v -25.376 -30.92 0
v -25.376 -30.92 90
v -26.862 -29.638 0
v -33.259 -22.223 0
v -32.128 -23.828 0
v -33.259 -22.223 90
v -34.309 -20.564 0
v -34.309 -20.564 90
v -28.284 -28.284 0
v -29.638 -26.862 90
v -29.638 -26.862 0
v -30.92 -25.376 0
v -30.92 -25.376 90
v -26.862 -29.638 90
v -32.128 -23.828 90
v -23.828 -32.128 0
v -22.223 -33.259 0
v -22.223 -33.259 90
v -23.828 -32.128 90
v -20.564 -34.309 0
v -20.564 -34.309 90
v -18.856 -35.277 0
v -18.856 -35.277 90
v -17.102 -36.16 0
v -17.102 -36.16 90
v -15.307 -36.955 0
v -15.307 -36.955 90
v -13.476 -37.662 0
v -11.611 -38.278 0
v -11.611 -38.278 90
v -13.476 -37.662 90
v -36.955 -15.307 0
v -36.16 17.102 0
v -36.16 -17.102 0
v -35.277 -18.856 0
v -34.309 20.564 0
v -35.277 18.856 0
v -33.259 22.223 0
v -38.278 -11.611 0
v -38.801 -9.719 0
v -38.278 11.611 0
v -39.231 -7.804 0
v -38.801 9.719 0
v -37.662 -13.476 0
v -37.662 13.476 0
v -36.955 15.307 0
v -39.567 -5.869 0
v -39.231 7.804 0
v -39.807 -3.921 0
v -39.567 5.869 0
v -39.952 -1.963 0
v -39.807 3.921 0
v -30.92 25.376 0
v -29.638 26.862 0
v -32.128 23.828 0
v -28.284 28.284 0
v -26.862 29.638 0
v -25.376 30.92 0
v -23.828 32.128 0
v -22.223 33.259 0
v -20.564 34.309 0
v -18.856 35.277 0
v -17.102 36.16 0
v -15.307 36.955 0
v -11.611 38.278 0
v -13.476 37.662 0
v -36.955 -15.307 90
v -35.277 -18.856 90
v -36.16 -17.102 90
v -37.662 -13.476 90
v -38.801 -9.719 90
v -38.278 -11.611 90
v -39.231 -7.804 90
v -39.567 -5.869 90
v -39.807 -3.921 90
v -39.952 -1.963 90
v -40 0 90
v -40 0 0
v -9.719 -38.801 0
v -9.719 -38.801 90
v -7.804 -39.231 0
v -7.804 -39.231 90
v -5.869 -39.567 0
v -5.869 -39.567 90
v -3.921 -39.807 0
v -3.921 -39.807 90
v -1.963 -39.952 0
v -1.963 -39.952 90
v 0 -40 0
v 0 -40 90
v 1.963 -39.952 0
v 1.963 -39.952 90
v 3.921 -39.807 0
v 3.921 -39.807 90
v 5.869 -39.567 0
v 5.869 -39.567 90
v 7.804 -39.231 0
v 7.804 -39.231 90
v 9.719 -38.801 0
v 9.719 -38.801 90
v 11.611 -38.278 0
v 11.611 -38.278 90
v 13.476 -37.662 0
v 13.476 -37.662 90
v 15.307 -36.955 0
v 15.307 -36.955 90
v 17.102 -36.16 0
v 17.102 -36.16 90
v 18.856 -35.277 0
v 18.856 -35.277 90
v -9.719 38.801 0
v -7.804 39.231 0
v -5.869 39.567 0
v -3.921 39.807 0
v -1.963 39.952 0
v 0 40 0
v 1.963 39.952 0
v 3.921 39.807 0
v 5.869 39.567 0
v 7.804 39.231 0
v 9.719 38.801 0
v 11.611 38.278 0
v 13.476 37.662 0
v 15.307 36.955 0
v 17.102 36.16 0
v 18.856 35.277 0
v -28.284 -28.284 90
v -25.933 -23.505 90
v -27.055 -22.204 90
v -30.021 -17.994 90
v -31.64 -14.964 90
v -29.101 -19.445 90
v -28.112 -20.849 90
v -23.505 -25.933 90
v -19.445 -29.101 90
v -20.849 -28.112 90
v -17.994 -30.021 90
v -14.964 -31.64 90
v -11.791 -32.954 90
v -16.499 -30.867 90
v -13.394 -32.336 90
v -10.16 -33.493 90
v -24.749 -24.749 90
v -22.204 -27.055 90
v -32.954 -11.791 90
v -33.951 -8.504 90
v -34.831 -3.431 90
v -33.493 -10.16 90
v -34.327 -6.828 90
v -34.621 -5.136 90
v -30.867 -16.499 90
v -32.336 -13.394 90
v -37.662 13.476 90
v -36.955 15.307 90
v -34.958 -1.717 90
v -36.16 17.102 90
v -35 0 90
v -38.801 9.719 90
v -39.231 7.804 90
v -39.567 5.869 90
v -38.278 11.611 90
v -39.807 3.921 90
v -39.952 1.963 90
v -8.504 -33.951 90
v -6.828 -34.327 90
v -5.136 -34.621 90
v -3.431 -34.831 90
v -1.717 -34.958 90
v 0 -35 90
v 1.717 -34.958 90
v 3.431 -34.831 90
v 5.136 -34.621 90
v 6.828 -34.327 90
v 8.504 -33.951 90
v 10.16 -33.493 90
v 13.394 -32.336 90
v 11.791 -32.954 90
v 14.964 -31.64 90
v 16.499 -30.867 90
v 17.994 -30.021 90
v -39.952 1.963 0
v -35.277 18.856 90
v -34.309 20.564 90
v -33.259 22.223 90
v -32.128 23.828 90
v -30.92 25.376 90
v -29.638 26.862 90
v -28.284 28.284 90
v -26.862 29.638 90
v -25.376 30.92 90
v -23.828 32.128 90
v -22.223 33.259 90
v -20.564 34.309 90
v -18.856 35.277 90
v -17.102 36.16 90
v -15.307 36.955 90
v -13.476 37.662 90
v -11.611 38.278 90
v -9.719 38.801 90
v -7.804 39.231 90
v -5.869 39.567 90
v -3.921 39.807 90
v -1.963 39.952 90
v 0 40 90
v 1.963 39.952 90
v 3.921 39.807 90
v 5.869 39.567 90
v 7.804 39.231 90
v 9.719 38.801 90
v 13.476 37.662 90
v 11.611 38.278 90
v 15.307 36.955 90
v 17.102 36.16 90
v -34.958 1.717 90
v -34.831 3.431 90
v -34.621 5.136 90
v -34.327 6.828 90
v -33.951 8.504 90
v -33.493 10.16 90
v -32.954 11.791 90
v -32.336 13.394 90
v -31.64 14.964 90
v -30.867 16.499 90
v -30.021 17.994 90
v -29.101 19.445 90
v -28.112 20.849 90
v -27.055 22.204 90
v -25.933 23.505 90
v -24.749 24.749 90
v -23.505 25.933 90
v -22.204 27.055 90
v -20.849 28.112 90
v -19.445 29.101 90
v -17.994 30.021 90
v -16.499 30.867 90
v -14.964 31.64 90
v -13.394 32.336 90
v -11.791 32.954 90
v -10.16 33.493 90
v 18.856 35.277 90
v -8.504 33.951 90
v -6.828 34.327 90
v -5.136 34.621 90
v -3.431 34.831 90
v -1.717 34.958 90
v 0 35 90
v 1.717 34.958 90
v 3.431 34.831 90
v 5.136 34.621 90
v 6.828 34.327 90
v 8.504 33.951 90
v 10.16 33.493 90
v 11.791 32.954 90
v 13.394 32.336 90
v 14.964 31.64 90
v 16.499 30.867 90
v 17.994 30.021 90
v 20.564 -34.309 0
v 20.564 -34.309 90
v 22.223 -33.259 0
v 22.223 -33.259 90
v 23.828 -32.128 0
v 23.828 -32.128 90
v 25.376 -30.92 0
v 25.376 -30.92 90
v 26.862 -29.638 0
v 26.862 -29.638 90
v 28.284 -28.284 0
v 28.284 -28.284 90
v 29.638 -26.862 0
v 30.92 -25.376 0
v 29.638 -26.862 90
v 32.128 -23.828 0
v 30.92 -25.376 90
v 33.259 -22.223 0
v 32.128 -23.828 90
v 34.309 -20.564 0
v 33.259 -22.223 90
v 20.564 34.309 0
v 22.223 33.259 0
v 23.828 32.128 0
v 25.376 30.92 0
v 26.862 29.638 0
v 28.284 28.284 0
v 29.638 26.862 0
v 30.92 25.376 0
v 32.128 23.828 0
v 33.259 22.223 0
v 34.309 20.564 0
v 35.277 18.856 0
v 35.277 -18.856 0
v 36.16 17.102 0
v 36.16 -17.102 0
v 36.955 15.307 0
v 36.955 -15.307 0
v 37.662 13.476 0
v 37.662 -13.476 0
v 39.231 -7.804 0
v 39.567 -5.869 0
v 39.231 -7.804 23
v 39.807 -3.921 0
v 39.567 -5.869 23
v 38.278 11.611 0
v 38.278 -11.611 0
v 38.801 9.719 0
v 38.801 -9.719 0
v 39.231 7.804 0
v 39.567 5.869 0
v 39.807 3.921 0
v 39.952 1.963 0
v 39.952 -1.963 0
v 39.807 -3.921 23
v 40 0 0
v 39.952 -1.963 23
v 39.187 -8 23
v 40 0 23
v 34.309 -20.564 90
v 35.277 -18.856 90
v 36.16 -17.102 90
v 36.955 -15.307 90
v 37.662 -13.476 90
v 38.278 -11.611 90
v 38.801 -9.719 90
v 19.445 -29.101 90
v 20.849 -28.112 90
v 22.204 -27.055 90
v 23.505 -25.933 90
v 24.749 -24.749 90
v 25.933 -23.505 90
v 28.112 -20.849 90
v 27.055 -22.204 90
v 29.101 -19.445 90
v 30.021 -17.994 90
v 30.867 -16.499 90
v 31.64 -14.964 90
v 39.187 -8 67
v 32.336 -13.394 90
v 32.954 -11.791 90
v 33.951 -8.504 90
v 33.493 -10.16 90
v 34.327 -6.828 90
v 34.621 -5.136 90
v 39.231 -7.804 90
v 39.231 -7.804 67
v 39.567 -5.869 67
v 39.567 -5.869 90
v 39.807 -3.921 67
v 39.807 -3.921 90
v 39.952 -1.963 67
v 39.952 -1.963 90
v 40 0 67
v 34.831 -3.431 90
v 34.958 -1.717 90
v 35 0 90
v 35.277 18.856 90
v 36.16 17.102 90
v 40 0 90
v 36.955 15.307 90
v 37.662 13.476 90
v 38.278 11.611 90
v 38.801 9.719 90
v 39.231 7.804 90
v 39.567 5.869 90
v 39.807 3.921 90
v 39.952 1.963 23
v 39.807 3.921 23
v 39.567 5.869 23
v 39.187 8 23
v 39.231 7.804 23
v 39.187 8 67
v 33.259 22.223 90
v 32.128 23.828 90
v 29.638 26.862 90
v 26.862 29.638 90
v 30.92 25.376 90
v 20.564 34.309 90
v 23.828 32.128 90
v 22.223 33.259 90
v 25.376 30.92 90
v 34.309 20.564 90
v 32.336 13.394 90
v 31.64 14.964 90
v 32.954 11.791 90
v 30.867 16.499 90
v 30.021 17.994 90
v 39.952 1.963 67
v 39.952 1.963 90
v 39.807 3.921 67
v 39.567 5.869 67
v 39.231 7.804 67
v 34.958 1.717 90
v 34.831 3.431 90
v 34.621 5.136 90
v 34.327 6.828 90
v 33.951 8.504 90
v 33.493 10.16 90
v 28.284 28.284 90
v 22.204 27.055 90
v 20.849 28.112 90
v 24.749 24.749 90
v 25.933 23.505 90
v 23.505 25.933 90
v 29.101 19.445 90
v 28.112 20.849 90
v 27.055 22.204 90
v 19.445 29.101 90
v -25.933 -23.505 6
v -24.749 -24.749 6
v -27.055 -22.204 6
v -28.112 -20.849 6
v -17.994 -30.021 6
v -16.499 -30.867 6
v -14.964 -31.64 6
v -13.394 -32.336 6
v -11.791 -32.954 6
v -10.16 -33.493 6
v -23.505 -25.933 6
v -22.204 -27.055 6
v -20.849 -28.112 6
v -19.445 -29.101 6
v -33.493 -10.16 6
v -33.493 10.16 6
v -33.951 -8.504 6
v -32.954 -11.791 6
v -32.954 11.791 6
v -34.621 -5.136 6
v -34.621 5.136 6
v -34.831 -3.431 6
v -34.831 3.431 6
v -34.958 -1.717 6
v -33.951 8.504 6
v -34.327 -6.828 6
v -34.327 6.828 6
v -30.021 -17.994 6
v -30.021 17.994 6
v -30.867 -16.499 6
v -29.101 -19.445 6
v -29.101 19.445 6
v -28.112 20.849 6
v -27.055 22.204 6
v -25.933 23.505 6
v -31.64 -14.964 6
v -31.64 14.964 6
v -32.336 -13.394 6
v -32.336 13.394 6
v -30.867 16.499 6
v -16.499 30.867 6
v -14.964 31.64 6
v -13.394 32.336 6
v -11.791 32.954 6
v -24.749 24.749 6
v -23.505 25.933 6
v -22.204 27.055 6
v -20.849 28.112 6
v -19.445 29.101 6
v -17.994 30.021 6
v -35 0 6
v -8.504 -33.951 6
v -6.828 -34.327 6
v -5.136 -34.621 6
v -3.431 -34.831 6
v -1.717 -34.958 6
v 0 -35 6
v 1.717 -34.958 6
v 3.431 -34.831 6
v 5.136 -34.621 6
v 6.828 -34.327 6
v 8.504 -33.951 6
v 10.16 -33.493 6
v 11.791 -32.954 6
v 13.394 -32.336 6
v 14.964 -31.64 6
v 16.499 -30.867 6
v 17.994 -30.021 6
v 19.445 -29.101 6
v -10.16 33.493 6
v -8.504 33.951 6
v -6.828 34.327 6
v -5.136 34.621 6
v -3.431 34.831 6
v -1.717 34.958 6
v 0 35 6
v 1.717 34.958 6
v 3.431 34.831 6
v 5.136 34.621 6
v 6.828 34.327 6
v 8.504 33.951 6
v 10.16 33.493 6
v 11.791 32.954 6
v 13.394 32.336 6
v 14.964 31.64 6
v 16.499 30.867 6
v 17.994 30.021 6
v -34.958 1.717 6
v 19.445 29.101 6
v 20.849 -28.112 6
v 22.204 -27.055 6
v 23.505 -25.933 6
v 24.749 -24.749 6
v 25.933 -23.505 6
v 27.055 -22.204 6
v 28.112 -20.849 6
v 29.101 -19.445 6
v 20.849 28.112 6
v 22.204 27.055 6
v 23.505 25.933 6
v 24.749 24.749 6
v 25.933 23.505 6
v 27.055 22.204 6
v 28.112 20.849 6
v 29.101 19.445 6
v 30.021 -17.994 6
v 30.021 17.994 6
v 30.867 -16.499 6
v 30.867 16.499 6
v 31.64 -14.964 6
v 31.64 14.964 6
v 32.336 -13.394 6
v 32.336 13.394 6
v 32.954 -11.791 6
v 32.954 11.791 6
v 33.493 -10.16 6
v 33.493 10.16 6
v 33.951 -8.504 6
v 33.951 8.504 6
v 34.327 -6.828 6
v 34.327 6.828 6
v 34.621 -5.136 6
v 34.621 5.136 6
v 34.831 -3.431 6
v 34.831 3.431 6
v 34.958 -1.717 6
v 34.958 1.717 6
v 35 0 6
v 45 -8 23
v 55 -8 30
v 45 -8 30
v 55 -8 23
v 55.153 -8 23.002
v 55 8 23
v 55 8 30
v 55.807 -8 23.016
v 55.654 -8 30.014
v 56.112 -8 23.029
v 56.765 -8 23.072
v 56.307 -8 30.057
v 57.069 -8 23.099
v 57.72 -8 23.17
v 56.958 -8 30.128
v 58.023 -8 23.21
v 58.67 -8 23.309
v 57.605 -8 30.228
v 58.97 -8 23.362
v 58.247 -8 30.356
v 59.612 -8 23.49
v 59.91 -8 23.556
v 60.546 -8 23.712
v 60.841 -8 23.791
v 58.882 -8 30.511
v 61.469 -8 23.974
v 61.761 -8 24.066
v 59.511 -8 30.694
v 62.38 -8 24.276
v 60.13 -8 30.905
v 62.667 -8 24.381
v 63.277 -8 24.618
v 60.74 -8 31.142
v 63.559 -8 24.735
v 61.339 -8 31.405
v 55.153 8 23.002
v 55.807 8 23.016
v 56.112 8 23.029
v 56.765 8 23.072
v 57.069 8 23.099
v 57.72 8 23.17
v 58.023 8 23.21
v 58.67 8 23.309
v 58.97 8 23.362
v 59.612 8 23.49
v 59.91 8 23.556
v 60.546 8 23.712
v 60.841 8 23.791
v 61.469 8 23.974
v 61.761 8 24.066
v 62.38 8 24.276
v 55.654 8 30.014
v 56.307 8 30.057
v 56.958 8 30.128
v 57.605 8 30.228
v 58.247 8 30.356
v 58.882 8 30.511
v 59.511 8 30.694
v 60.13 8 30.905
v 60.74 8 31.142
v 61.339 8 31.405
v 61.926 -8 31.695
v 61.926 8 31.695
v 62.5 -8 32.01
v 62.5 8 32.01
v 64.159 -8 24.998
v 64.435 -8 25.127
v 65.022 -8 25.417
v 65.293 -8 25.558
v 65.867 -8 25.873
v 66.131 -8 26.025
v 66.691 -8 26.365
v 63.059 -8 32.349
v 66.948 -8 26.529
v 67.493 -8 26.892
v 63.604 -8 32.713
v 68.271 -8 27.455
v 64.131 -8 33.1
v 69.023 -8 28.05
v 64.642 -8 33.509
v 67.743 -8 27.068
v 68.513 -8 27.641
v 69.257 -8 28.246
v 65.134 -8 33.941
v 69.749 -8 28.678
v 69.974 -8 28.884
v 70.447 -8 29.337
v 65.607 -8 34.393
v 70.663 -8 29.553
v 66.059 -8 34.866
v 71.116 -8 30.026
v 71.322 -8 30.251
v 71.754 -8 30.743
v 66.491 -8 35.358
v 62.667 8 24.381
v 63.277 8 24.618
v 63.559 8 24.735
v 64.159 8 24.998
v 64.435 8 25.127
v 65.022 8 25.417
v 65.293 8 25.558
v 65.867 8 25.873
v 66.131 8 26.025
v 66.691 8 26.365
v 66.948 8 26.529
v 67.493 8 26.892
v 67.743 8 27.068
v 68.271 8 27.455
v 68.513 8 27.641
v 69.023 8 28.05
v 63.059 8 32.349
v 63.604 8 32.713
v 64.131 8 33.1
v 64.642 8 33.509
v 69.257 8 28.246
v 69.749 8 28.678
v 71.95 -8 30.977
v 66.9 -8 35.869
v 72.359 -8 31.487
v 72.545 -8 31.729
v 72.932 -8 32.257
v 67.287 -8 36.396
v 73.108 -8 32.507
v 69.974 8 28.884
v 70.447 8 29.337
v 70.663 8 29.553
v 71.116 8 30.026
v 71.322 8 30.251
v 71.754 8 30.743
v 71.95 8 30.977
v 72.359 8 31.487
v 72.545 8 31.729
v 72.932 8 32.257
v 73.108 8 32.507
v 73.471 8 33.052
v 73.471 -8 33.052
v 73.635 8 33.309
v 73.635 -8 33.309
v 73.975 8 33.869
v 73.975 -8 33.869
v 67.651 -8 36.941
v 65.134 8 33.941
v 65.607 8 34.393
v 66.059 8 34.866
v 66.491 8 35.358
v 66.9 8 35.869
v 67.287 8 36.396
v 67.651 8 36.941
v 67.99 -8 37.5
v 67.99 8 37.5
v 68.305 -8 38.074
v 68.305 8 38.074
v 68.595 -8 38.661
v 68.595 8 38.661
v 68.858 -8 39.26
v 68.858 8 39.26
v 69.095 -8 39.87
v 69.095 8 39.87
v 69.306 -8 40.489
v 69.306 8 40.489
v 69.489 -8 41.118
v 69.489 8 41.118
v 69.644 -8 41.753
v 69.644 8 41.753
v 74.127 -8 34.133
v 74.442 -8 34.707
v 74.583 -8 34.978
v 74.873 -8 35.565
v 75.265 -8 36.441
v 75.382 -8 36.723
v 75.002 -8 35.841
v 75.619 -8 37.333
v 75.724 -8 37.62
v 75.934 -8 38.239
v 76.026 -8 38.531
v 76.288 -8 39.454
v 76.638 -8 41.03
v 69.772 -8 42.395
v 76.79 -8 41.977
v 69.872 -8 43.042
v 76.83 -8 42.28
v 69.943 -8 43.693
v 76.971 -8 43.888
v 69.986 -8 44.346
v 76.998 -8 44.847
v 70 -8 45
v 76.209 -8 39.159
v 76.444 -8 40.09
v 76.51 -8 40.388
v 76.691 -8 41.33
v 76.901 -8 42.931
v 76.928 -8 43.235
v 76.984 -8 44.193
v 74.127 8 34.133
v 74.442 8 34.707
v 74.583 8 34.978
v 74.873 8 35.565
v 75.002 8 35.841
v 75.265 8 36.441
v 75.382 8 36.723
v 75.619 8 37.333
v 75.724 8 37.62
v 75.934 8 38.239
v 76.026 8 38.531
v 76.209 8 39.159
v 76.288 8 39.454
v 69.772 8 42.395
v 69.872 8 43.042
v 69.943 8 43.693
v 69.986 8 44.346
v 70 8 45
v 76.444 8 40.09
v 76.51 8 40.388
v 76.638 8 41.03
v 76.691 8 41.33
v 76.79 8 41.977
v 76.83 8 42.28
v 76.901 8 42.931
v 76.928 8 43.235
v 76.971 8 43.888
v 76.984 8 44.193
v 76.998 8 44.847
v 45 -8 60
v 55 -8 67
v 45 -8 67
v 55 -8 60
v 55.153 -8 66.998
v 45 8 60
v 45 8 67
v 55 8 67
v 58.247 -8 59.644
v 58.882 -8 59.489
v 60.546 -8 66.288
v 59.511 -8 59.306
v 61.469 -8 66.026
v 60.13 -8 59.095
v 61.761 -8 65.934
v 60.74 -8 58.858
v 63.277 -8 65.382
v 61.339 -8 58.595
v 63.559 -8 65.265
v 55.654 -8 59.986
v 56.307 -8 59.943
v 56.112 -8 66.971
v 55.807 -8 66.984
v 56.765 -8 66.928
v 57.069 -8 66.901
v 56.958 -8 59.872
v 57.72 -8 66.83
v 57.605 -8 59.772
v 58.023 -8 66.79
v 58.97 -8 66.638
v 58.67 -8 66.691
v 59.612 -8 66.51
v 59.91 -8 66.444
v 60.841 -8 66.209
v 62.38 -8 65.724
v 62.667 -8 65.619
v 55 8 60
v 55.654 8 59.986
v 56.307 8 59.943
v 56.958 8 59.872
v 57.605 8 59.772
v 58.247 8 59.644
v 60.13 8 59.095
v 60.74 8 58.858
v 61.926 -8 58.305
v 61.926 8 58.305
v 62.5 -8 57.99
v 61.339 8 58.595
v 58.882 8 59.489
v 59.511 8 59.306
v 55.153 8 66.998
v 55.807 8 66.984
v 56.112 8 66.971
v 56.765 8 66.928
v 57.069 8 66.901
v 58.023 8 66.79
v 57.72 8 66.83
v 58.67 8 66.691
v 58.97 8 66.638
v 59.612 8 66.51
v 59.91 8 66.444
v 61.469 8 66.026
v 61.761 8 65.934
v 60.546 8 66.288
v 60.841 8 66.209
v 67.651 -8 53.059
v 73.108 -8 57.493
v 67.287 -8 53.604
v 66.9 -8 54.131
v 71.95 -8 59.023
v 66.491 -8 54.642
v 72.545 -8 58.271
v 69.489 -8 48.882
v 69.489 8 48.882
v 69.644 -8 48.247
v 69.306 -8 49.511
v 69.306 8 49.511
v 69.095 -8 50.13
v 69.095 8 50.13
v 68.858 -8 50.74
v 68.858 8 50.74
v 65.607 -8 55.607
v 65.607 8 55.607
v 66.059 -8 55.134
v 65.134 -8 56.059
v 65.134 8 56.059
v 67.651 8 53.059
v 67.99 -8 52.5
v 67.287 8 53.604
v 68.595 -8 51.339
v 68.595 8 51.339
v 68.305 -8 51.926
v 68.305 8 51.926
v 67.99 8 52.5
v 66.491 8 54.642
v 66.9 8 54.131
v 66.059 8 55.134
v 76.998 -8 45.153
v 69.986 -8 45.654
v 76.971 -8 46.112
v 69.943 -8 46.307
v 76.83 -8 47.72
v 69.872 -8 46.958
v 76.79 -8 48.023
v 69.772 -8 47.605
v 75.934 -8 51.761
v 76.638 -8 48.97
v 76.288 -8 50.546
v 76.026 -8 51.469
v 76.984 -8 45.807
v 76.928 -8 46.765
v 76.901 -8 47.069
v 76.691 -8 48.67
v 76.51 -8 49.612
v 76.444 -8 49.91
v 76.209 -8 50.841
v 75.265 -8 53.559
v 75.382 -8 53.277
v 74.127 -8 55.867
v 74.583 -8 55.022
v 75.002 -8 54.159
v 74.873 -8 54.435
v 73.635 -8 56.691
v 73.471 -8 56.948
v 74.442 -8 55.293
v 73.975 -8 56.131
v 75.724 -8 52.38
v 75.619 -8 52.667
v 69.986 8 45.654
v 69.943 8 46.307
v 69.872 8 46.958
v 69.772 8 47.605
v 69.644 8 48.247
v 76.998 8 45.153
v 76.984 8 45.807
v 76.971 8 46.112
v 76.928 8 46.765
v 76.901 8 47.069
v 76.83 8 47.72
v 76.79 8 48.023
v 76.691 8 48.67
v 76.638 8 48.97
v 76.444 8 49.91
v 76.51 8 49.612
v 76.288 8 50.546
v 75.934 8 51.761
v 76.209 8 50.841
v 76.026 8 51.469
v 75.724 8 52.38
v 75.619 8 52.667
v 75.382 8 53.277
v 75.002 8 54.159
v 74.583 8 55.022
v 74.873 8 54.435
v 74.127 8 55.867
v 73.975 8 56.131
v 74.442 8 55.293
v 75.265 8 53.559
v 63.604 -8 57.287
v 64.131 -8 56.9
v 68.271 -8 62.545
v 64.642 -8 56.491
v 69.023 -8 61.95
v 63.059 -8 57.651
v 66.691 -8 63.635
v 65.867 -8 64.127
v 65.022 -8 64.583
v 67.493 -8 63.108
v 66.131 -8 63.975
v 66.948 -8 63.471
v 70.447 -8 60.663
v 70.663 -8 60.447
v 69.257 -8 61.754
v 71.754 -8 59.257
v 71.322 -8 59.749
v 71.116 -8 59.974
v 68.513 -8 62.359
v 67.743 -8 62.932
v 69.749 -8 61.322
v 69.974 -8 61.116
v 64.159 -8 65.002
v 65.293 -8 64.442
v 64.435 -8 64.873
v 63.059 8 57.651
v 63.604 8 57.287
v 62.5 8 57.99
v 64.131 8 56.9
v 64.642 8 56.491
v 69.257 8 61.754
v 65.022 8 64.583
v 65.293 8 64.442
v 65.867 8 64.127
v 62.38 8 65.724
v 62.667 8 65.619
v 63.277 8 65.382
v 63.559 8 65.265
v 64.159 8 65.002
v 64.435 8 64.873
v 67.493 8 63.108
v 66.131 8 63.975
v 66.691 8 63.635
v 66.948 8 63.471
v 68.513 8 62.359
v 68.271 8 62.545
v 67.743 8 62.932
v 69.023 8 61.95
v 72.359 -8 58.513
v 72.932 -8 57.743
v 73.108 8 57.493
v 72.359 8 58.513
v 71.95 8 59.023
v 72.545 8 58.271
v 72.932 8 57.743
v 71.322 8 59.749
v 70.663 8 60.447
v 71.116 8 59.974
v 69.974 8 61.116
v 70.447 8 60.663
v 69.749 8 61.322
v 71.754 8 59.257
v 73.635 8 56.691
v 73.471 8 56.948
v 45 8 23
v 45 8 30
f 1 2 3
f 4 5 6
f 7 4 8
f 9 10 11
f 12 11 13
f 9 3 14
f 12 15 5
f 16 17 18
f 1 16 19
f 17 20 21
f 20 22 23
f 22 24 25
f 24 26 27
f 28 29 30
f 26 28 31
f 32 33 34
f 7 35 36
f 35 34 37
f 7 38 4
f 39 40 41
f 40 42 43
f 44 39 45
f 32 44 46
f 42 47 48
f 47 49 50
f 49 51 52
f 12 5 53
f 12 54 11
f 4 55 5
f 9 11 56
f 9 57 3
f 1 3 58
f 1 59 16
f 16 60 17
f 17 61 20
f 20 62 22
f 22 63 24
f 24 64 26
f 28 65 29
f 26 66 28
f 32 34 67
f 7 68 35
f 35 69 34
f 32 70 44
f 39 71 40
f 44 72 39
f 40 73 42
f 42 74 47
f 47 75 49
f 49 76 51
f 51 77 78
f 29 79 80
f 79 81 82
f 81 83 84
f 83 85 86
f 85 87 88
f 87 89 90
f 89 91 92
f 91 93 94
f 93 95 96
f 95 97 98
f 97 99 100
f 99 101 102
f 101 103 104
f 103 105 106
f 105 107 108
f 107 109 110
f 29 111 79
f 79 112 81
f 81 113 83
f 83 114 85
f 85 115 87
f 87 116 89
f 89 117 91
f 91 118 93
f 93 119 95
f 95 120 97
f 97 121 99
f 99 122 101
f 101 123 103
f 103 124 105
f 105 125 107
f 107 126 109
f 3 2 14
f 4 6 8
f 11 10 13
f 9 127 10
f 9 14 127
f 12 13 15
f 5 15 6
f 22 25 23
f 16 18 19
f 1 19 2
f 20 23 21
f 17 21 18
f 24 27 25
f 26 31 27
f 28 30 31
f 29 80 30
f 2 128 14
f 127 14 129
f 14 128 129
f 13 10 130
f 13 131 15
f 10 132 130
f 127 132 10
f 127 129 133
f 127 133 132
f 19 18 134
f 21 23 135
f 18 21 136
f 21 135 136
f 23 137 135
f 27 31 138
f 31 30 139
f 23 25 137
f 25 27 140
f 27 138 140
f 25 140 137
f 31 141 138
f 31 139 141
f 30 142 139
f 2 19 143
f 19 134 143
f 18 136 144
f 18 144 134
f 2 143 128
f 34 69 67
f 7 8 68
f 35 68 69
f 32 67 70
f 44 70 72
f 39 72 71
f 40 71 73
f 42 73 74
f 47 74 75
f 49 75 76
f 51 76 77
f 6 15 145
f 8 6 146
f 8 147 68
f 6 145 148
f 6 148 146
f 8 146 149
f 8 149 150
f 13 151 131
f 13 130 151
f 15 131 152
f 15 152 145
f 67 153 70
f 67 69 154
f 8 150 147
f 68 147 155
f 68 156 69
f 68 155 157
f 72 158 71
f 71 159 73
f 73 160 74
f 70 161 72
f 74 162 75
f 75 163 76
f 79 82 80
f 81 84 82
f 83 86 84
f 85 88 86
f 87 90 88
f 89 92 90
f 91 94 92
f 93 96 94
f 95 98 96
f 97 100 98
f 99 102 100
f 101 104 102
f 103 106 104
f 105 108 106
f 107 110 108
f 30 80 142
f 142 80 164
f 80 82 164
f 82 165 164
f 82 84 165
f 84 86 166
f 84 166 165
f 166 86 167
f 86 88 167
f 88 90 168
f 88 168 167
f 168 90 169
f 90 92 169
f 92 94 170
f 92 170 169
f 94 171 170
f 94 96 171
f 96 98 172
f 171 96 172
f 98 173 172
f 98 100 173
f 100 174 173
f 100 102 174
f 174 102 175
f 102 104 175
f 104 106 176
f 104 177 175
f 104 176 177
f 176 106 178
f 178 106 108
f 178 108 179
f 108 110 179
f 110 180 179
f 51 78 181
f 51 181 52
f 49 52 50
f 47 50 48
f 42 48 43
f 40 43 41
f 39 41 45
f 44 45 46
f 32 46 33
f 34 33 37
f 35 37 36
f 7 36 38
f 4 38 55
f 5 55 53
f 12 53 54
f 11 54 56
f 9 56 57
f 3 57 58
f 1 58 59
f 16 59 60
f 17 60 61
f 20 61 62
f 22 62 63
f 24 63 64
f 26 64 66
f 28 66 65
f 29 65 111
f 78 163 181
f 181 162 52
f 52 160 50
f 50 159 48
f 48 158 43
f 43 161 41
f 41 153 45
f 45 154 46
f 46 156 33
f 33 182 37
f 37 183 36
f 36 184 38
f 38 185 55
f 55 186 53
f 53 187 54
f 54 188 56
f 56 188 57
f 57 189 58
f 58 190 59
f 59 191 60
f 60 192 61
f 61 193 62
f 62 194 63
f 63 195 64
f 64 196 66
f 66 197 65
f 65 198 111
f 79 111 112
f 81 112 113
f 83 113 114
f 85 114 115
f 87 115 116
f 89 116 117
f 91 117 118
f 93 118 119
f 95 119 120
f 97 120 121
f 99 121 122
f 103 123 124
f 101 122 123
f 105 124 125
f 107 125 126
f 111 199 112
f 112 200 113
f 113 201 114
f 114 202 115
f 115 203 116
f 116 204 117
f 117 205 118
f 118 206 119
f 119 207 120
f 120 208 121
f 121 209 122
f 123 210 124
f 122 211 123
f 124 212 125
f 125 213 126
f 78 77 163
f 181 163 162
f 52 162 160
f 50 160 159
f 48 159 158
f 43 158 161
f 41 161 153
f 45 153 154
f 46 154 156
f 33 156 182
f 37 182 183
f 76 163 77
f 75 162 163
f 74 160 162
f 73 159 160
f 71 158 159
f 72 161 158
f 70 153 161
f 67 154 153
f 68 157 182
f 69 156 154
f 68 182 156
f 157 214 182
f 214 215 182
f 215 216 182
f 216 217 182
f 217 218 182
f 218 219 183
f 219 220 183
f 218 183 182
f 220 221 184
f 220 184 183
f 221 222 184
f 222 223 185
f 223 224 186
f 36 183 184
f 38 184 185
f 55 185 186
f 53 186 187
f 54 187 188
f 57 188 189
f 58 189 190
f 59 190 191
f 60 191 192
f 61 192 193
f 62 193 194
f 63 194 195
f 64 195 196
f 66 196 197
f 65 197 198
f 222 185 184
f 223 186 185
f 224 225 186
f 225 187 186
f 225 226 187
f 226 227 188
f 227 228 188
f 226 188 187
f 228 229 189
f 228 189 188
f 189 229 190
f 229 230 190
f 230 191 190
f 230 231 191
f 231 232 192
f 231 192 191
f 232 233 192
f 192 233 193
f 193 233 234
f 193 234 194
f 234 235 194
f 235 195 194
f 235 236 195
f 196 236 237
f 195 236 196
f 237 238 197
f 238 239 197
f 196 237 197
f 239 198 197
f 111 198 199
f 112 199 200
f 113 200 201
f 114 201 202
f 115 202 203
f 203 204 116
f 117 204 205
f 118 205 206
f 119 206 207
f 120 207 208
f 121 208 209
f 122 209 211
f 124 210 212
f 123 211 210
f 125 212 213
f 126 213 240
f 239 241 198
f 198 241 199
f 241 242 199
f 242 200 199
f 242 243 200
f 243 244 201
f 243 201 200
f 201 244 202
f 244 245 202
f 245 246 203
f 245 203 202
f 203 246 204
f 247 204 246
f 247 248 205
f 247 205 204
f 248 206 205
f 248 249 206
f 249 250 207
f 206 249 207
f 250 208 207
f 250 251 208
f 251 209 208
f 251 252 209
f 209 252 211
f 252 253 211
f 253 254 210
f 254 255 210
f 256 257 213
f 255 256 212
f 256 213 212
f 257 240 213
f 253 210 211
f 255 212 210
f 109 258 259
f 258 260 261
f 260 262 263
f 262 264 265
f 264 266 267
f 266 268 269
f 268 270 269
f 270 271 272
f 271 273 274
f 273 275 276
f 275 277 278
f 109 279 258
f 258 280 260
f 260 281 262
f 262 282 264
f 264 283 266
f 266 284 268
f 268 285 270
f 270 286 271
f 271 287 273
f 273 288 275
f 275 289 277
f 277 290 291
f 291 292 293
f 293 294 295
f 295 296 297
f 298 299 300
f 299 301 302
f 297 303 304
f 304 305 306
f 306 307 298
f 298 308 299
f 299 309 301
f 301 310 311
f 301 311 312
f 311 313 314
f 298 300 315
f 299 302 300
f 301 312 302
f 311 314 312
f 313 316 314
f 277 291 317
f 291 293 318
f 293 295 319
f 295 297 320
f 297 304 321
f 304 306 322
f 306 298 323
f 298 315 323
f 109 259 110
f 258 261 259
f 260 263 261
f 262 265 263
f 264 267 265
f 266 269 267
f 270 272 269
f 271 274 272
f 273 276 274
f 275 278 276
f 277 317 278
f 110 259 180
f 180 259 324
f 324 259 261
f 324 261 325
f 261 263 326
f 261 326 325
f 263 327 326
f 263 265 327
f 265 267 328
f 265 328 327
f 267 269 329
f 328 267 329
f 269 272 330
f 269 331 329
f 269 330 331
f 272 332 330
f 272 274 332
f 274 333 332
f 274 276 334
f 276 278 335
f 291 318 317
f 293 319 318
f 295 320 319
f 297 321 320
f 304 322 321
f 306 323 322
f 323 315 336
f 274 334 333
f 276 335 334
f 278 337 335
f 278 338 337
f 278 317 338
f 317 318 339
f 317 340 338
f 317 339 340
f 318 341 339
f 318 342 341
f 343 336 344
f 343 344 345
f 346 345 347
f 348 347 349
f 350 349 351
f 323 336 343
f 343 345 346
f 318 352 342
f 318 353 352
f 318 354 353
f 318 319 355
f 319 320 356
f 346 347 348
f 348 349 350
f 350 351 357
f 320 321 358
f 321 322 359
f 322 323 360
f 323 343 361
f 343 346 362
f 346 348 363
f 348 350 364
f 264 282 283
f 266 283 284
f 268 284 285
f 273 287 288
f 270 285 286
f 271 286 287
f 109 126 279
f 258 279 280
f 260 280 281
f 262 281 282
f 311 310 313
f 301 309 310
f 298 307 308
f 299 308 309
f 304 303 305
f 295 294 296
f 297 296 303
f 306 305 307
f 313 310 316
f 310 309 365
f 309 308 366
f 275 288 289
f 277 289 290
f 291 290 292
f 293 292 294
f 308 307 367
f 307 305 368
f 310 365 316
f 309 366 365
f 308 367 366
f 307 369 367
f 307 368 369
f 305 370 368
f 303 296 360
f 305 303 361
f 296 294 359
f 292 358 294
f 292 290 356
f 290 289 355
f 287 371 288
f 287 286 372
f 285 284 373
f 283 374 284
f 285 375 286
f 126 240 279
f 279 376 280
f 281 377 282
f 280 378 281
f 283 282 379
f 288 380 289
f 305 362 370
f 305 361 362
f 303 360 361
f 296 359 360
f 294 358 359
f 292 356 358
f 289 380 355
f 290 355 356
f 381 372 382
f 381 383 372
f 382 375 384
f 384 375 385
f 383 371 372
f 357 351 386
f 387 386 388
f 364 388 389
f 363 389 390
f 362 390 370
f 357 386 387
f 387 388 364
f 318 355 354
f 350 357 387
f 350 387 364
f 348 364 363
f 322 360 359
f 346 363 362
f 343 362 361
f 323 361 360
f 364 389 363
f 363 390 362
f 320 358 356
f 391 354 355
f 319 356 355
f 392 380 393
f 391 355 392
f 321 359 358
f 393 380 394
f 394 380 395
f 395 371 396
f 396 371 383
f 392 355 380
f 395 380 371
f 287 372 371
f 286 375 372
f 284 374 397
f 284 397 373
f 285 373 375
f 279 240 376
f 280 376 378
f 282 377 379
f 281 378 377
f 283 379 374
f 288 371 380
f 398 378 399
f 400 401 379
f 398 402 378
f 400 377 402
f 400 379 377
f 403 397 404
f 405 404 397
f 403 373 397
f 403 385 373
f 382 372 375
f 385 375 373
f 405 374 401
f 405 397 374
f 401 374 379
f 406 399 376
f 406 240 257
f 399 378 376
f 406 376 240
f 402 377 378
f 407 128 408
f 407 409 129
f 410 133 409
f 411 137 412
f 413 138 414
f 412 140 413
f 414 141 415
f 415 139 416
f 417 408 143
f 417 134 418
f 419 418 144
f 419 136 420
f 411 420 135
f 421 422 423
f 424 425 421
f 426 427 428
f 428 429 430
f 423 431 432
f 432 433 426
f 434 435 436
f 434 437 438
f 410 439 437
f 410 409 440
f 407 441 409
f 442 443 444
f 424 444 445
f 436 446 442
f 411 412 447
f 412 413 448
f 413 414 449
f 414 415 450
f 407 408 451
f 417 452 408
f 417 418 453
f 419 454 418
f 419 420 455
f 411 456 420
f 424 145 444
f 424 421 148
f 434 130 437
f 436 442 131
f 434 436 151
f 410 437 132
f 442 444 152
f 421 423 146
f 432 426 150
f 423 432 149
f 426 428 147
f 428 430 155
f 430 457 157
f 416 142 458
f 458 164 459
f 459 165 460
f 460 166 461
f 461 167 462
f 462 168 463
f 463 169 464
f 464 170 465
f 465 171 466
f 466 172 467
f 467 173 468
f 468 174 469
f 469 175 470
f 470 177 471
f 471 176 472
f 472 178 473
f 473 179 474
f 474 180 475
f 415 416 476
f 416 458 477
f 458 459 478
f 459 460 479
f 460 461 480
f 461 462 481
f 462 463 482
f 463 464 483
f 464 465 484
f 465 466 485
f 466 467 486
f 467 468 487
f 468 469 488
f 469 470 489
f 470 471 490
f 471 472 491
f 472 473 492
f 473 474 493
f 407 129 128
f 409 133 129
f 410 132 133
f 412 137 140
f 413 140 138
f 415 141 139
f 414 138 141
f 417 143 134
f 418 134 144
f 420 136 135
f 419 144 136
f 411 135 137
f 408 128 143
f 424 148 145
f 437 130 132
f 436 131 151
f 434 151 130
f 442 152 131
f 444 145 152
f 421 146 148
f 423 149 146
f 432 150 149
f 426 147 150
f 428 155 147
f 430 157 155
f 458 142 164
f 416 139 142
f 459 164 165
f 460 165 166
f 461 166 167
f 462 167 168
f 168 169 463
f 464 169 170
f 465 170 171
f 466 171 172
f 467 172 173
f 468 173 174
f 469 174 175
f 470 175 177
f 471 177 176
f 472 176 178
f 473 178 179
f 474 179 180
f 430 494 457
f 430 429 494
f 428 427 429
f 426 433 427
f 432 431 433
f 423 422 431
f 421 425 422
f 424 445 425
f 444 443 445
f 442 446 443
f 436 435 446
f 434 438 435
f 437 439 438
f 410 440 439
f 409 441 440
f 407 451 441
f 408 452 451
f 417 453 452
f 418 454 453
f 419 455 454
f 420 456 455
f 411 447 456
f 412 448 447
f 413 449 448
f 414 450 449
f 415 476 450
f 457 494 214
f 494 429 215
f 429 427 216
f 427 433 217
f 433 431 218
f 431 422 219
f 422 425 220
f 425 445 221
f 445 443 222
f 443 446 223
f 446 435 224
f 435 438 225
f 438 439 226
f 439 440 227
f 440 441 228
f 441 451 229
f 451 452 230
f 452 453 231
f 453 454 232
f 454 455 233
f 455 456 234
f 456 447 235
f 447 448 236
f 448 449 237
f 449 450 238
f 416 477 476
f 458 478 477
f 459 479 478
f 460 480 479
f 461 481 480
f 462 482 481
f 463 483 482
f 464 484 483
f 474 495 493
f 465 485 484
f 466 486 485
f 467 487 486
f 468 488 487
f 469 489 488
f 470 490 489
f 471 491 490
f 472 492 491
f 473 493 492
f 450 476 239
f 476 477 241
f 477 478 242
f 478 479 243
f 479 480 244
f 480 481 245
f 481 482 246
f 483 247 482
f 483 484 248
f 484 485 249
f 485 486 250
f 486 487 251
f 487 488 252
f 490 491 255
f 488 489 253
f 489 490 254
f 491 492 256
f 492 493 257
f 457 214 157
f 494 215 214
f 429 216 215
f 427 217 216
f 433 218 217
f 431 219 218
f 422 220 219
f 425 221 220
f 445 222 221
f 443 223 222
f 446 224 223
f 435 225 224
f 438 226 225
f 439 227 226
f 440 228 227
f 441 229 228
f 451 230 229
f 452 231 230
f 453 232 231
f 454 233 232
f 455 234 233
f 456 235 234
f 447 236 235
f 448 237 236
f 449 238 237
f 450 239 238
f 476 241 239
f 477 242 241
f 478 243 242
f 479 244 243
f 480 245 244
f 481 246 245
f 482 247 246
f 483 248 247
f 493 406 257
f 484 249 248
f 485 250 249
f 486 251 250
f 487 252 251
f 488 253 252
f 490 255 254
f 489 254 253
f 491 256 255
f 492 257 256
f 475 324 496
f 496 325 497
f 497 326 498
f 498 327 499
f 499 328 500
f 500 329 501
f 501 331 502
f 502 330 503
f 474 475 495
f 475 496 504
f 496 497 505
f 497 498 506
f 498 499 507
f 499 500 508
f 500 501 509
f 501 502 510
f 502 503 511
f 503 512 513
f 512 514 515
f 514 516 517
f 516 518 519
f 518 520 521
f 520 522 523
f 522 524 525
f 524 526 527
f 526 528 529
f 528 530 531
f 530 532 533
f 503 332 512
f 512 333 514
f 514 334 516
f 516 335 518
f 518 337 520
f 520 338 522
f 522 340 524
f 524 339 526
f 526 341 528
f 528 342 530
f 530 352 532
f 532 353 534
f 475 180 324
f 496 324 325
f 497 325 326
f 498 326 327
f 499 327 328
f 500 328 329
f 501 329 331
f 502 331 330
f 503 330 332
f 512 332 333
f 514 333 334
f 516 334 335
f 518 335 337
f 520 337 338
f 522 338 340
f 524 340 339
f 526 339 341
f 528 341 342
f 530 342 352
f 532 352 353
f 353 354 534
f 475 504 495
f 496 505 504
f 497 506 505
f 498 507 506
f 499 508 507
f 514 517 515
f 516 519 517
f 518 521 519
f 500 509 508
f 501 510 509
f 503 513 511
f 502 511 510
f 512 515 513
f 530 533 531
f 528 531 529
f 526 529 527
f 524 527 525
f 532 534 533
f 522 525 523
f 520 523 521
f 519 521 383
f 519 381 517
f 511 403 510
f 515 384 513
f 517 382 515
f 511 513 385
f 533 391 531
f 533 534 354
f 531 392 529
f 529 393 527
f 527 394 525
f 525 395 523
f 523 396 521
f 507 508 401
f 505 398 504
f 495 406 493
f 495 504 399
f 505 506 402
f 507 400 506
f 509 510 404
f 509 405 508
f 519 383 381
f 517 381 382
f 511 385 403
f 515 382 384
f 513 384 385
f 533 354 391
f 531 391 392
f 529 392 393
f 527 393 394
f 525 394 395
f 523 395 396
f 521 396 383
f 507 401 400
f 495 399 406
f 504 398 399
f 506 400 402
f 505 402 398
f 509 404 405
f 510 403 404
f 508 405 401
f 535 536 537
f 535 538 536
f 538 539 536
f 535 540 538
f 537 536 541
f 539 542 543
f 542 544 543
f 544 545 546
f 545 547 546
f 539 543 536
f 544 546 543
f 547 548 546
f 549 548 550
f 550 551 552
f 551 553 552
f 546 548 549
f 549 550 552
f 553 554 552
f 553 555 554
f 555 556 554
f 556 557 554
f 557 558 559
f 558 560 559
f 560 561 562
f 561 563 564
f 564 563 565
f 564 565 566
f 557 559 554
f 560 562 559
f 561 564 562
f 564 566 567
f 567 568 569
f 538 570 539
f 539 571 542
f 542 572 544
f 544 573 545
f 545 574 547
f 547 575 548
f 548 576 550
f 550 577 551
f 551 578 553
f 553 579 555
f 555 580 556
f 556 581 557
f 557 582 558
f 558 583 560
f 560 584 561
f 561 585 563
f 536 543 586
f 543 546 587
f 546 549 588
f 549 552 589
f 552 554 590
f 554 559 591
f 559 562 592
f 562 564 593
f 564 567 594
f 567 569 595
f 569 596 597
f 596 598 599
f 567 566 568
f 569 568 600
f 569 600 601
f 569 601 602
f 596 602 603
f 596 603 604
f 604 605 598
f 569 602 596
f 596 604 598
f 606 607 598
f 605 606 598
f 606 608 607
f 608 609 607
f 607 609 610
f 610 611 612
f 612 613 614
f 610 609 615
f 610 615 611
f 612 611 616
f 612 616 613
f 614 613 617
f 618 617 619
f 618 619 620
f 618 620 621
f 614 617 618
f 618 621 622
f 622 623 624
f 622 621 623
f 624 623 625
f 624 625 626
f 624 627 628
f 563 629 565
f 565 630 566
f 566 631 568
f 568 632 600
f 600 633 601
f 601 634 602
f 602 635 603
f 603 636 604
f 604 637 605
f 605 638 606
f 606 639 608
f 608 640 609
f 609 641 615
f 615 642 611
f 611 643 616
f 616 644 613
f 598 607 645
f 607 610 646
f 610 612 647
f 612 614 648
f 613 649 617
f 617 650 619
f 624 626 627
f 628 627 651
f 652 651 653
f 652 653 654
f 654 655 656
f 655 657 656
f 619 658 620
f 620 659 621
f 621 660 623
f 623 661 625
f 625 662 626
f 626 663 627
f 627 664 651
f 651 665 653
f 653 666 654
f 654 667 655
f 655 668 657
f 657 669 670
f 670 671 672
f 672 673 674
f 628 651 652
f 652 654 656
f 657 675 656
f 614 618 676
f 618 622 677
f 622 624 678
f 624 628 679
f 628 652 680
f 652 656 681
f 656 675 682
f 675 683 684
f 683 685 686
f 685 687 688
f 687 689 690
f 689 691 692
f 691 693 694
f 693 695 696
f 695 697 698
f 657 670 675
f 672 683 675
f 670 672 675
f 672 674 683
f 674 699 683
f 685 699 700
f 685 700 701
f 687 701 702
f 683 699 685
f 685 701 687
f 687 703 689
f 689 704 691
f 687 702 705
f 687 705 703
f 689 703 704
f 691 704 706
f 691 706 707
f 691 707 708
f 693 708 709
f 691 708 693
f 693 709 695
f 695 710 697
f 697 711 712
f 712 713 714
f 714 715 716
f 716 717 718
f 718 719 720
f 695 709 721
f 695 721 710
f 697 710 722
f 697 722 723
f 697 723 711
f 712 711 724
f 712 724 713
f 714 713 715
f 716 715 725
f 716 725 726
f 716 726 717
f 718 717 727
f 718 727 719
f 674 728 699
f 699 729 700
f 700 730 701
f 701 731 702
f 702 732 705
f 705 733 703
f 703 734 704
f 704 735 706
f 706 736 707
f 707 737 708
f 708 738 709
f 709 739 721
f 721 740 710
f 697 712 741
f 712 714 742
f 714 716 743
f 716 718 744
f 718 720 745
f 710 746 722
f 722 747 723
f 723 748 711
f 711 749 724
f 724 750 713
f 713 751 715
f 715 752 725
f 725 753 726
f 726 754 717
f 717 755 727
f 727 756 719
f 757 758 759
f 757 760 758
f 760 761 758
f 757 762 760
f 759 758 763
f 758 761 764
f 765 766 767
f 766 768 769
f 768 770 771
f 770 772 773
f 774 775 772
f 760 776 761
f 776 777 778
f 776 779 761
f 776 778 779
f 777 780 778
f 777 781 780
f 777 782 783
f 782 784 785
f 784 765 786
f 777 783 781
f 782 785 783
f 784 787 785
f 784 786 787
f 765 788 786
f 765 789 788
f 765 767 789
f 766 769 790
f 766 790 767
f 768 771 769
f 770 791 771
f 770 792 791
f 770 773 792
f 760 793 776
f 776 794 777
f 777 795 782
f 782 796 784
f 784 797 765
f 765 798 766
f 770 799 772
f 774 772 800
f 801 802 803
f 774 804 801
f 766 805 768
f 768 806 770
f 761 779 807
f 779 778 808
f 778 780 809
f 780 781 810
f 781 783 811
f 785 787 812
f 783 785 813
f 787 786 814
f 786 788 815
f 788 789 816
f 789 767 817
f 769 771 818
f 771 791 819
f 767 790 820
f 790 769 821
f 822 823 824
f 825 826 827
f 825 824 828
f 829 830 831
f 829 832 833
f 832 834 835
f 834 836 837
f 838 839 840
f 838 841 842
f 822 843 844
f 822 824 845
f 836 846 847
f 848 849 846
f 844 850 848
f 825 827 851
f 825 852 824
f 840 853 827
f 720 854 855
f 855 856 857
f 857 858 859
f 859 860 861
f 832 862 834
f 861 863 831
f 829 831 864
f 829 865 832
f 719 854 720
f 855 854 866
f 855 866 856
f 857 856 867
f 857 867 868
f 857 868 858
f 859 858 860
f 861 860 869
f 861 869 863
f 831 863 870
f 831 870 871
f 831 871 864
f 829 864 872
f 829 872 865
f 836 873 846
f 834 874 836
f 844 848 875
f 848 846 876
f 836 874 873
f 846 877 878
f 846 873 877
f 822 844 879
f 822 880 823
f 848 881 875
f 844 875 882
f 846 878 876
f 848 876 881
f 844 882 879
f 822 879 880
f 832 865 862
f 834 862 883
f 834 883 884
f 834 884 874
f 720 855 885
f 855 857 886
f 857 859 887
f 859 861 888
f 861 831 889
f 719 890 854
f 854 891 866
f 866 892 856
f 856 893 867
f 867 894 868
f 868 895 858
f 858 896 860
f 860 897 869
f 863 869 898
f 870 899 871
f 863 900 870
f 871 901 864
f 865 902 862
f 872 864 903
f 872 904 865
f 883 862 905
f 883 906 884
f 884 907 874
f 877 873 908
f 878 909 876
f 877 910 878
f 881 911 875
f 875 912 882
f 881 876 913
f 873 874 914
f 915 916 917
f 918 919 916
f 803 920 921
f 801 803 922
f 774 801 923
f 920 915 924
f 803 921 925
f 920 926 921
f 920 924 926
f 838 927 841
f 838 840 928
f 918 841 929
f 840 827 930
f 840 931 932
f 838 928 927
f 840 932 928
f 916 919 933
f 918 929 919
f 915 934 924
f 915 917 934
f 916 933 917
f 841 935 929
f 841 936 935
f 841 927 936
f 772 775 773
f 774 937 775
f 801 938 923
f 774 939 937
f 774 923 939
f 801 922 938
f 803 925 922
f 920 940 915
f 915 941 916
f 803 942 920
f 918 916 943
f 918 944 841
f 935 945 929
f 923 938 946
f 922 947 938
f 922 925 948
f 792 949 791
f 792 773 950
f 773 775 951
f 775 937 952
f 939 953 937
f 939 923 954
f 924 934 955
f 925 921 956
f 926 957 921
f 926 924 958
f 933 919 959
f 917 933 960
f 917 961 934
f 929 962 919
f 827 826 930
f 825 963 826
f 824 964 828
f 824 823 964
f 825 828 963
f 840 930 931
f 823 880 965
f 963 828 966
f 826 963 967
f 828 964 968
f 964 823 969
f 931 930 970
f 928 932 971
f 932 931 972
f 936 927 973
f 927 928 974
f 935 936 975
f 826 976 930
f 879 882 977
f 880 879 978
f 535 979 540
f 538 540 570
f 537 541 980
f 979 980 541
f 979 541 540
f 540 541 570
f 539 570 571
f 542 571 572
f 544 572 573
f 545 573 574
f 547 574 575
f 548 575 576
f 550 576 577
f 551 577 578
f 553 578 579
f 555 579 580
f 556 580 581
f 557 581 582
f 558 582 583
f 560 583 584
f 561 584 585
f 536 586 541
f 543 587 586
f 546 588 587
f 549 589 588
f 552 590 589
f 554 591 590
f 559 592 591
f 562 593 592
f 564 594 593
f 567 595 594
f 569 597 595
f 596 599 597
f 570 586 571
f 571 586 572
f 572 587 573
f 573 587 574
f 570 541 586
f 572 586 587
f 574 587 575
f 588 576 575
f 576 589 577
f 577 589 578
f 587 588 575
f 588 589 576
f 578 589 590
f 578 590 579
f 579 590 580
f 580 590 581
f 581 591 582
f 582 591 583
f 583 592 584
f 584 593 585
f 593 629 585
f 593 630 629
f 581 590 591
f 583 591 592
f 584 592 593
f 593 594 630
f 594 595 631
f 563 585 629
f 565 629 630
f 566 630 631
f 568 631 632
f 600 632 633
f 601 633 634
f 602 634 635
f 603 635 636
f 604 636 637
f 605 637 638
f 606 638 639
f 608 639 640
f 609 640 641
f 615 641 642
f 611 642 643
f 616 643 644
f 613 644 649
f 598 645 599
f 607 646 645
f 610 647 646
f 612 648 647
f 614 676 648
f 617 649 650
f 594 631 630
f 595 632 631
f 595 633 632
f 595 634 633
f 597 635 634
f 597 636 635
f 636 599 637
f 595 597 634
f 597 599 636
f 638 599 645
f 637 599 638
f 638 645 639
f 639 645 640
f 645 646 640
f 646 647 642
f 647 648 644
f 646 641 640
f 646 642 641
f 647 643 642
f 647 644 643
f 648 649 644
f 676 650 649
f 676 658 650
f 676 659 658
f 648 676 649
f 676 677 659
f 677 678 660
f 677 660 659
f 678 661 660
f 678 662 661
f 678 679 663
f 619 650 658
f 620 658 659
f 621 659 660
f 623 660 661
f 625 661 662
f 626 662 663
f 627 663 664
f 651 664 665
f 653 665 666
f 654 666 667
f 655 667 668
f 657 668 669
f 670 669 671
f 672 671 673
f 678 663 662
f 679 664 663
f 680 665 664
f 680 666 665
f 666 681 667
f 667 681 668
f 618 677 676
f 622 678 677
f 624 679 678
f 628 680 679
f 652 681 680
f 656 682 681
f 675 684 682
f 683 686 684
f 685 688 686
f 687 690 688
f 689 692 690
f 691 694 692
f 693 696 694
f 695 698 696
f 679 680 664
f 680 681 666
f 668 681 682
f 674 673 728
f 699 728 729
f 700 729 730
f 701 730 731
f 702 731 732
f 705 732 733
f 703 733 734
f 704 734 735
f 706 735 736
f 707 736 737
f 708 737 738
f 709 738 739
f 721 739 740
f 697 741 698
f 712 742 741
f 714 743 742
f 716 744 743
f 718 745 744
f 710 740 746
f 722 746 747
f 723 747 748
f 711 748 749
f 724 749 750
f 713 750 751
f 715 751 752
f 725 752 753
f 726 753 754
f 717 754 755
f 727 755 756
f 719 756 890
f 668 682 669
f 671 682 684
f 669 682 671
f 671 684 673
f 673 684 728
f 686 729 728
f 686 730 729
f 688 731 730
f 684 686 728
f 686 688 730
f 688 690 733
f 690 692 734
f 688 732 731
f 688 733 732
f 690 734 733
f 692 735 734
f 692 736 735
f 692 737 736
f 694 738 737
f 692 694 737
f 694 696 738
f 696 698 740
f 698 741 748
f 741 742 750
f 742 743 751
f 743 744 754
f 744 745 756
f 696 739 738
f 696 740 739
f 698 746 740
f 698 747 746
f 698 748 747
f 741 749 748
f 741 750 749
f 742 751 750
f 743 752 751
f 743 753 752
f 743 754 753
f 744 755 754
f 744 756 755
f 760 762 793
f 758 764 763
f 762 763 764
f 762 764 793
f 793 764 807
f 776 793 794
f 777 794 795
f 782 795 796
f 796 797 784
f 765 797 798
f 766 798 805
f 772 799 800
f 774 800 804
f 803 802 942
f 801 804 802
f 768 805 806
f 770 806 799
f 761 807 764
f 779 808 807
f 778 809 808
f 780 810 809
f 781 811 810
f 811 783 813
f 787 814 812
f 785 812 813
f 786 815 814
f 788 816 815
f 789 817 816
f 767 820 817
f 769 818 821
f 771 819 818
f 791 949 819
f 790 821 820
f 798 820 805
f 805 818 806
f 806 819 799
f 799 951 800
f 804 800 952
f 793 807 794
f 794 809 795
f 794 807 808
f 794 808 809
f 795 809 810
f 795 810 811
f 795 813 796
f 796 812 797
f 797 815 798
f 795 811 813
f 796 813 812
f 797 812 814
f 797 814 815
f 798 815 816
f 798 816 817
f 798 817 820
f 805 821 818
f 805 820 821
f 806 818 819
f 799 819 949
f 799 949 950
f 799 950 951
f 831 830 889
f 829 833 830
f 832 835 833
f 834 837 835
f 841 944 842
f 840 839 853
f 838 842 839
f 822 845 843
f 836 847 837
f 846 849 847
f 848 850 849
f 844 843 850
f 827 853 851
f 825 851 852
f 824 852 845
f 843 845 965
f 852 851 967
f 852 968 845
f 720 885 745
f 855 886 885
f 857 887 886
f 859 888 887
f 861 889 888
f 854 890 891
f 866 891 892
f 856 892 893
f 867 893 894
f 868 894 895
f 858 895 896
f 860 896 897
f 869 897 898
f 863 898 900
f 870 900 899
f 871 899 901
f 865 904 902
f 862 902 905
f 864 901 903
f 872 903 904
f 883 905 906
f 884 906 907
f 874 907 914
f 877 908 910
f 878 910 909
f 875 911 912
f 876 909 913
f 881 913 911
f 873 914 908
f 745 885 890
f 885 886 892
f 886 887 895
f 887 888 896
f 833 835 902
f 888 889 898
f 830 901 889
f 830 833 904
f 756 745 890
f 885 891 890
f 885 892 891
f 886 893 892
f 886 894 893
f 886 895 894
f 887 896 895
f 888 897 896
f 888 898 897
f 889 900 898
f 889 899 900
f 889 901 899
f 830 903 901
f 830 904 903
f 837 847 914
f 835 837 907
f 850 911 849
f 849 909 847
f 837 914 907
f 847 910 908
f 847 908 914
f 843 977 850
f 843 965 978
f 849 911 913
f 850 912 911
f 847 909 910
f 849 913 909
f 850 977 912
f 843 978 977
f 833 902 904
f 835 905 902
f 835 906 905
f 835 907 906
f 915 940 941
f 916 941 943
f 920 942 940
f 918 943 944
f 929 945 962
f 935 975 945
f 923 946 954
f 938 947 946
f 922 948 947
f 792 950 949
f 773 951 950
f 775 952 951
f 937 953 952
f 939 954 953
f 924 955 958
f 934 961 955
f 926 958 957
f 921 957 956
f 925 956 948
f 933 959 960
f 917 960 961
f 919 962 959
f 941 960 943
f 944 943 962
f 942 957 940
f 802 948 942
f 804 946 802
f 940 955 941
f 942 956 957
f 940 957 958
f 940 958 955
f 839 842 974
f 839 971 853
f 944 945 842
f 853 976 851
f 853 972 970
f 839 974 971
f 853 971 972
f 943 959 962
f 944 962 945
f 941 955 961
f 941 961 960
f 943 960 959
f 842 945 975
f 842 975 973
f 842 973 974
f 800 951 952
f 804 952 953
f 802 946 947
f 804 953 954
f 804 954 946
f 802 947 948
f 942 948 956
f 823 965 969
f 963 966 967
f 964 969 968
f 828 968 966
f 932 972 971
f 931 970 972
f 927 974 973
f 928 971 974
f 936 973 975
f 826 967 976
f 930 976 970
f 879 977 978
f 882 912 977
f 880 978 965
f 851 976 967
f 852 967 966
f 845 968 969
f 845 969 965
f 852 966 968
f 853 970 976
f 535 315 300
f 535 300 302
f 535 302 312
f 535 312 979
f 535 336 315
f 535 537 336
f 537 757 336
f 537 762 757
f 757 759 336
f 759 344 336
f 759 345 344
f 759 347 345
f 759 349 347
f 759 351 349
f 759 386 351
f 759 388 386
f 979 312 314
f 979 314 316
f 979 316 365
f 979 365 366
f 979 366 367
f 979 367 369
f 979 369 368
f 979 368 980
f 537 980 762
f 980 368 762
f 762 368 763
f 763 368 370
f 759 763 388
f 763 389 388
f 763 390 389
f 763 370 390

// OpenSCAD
$fn = 128;

outer_diameter = 80;
inner_diameter = 70;
mug_height = 90;
bottom_thickness = 6;

outer_radius = outer_diameter / 2;
inner_radius = inner_diameter / 2;

handle_opening_height = 30;
handle_opening_width = 25;
handle_wall = 7;
handle_depth = 16;
handle_center_z = mug_height / 2;

handle_opening_left_x = outer_radius + 5;
handle_attach_overlap = 2.5;

eps = 0.2;

module mug_body() {
    difference() {
        cylinder(h = mug_height, r = outer_radius);

        translate([0, 0, bottom_thickness])
            cylinder(h = mug_height - bottom_thickness + eps, r = inner_radius);
    }
}

module d_shape_2d(x0, z0, h, w, segments = 72) {
    r = h / 2;
    straight_len = max(w - r, 0);

    polygon(
        points = concat(
            [
                [x0, z0 - r],
                [x0 + straight_len, z0 - r]
            ],
            [
                for (i = [1 : segments])
                    let (a = -90 + 180 * i / segments)
                        [x0 + straight_len + r * cos(a), z0 + r * sin(a)]
            ],
            [
                [x0, z0 + r]
            ]
        )
    );
}

module handle_profile() {
    difference() {
        offset(r = handle_wall)
            d_shape_2d(
                handle_opening_left_x,
                handle_center_z,
                handle_opening_height,
                handle_opening_width
            );

        d_shape_2d(
            handle_opening_left_x,
            handle_center_z,
            handle_opening_height,
            handle_opening_width
        );
    }
}

module handle() {
    union() {
        rotate([90, 0, 0])
            linear_extrude(height = handle_depth, center = true, convexity = 10)
                handle_profile();

        translate([
            outer_radius - handle_attach_overlap,
            -handle_depth / 2,
            handle_center_z - handle_opening_height / 2 - handle_wall
        ])
            cube([
                handle_opening_left_x - (outer_radius - handle_attach_overlap),
                handle_depth,
                handle_opening_height + 2 * handle_wall
            ]);
    }
}

render(convexity = 10)
union() {
    mug_body();
    handle();
}
